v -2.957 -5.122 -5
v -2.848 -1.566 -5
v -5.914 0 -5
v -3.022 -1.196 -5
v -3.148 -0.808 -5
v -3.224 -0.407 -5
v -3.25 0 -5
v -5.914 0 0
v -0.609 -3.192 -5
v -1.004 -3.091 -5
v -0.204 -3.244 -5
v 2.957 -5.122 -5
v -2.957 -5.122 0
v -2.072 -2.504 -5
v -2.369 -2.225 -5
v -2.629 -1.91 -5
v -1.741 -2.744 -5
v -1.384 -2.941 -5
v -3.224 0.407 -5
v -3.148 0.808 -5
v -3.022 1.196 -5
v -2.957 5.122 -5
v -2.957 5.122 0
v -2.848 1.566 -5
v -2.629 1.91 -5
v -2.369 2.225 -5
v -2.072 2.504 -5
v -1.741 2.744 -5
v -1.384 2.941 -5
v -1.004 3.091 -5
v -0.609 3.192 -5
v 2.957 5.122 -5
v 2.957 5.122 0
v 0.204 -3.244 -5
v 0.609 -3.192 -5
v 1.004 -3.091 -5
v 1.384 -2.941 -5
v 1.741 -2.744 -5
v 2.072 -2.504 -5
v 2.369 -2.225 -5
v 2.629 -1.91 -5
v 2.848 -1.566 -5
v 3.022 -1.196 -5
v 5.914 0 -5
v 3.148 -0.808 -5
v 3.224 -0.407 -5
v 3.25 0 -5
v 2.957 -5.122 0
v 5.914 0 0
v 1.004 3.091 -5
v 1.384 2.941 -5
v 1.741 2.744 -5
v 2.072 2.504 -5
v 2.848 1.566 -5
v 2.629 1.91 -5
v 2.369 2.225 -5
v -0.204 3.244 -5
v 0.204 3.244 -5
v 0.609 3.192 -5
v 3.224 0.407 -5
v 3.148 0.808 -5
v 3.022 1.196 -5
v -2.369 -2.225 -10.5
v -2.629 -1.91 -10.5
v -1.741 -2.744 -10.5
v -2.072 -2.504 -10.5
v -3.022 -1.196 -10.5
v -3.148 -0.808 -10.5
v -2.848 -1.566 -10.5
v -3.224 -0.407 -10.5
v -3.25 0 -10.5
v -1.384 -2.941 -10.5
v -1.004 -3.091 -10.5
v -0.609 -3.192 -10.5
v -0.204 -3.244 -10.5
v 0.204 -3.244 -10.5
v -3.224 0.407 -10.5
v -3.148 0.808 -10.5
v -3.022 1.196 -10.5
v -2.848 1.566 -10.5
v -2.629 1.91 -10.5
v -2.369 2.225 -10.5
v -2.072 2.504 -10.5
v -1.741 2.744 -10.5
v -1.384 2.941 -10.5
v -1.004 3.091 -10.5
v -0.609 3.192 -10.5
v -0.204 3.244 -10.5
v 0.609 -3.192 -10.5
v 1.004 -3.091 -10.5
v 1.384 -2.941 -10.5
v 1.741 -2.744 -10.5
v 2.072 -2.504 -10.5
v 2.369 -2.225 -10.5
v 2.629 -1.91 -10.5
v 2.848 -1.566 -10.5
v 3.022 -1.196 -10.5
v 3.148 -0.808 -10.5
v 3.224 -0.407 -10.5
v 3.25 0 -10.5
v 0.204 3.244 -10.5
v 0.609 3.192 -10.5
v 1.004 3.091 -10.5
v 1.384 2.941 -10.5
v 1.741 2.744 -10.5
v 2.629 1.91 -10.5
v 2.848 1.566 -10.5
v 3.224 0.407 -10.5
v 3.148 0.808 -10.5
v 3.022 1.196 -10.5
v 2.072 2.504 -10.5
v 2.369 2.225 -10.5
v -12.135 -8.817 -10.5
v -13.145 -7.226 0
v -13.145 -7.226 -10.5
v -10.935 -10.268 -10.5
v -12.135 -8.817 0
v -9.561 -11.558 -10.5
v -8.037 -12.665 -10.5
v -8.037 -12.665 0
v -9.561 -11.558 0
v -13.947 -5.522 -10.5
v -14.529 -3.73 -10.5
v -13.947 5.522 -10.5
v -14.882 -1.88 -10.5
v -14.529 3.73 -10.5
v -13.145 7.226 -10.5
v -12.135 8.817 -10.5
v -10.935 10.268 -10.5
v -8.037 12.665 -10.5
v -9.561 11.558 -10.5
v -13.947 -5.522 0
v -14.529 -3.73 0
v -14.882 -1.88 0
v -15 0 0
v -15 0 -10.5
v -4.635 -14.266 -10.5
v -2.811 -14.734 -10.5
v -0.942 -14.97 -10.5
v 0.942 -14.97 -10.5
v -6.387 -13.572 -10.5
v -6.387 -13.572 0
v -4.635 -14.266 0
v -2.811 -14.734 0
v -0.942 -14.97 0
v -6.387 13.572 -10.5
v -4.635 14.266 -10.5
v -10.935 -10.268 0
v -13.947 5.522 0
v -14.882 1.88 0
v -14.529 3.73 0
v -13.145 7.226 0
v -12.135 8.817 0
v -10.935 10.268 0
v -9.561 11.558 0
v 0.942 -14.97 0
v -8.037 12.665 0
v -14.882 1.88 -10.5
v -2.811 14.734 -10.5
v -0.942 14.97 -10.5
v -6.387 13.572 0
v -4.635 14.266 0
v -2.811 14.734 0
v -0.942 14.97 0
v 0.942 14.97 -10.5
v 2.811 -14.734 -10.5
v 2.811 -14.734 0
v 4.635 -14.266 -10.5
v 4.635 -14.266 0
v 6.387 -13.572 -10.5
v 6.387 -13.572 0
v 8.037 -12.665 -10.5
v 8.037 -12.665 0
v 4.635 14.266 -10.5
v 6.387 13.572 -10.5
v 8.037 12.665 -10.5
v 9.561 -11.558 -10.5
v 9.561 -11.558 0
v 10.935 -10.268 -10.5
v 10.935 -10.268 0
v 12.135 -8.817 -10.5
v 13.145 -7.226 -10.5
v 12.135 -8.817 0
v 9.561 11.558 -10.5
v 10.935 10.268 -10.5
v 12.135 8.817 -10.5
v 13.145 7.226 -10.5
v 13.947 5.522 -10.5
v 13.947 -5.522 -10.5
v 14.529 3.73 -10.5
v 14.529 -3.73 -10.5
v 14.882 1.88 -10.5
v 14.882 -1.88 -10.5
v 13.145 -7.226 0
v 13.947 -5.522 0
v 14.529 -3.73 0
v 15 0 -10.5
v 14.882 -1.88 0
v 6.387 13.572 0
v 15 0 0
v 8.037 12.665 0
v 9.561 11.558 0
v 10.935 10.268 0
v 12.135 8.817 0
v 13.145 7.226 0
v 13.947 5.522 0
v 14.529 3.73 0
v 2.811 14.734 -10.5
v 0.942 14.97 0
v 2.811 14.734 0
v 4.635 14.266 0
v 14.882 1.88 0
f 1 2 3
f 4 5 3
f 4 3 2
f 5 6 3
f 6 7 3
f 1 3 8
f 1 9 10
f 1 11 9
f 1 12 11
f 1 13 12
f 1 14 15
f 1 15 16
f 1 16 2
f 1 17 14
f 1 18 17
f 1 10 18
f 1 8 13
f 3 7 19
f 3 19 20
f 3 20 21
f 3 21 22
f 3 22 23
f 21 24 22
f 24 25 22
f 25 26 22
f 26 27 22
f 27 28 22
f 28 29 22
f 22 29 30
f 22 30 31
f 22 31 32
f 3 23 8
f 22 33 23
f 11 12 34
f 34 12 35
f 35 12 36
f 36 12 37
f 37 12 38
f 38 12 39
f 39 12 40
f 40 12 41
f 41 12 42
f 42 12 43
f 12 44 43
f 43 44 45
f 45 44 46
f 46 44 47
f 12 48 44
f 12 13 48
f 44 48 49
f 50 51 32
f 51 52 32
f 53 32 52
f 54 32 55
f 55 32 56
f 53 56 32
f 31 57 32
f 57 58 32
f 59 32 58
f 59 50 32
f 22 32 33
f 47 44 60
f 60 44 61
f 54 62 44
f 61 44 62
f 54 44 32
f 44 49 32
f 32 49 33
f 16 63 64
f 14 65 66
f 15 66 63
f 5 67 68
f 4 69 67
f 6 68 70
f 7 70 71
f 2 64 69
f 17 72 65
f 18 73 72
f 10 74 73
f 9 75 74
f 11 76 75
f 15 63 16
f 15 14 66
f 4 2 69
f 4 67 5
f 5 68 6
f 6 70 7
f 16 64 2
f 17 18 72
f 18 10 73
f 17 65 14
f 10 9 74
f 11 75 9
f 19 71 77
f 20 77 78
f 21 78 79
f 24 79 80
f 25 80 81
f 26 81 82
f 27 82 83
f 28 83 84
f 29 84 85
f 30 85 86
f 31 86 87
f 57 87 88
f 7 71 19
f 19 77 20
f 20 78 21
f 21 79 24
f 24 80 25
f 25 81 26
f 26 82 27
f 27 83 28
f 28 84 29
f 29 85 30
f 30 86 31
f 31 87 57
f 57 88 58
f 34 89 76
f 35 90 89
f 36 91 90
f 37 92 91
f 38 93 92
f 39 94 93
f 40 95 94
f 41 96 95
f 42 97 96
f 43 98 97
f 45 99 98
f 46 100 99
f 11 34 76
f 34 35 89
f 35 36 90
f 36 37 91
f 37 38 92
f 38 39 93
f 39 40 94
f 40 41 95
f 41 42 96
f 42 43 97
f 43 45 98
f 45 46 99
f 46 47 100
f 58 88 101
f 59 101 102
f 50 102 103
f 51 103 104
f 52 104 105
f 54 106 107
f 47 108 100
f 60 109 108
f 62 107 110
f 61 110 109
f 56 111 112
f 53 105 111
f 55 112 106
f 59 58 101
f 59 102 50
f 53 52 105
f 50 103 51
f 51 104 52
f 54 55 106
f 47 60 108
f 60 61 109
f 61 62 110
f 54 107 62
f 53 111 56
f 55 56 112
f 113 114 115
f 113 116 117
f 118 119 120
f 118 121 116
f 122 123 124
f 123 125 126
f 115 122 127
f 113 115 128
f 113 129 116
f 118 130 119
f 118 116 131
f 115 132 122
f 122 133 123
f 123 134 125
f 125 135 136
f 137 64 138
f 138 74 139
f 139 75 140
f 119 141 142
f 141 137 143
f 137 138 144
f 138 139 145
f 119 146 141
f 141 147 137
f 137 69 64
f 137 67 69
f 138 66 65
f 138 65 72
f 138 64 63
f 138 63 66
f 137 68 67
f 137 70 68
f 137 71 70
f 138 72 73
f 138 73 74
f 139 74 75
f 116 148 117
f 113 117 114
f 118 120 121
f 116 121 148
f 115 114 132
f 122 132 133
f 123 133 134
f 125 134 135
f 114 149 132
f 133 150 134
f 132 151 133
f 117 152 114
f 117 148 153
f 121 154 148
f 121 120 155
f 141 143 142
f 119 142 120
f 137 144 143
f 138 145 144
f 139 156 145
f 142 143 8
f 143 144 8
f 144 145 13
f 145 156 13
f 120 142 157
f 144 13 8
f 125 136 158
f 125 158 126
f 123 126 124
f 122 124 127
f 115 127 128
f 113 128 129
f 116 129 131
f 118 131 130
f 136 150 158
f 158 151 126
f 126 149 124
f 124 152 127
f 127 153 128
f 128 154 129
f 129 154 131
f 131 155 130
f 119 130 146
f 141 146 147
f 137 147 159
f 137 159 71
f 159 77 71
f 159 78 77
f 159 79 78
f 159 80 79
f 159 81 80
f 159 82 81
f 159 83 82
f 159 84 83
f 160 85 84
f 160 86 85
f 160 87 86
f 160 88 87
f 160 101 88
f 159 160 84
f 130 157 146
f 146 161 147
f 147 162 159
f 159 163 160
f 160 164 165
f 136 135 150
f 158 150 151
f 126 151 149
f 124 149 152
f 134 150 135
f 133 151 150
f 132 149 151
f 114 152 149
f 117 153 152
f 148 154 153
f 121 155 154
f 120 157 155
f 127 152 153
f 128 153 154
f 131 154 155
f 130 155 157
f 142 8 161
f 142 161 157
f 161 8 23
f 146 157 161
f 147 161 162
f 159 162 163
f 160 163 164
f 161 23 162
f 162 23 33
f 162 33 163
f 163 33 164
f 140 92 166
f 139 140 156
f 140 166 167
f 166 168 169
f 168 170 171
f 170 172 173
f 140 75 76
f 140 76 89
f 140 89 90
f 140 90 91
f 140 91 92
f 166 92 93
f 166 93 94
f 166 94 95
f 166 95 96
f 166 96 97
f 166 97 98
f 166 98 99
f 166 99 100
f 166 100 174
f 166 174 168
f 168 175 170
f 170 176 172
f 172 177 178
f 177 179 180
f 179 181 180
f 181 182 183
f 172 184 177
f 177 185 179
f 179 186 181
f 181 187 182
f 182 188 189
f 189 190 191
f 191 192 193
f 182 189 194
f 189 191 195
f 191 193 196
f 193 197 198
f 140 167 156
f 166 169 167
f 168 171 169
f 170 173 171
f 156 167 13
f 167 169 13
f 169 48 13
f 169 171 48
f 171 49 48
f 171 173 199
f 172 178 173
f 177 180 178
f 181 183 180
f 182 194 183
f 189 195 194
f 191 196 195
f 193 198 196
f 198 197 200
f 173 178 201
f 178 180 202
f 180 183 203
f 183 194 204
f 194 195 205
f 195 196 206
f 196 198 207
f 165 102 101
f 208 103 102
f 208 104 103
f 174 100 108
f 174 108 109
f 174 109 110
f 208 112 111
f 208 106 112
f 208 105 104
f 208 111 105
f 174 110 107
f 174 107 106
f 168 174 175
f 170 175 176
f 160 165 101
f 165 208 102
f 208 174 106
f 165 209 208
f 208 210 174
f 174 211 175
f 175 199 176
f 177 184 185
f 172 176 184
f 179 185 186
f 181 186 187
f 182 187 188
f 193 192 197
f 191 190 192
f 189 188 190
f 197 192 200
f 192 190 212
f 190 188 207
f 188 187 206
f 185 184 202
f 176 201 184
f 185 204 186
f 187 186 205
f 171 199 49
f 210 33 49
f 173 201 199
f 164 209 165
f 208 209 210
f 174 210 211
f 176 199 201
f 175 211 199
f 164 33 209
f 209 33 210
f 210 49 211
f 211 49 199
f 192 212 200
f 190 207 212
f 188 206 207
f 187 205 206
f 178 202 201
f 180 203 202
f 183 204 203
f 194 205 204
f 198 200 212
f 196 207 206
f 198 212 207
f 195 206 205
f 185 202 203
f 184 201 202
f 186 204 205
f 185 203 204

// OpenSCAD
$fn = 50;


difference() {
	union() {
		translate(v = [0, 0, -10.5000000000]) {
			cylinder(h = 10.5000000000, r = 15.0000000000);
		}
	}
	union() {
		translate(v = [0, 0, 0]) {
			rotate(a = [0, 0, 0]) {
				difference() {
					union() {
						translate(v = [0, 0, -5]) {
							linear_extrude(height = 5) {
								polygon(points = [[5.9142500000, 0.0000000000], [2.9571250000, 5.1218907443], [-2.9571250000, 5.1218907443], [-5.9142500000, 0.0000000000], [-2.9571250000, -5.1218907443], [2.9571250000, -5.1218907443]]);
							}
						}
					}
					union();
				}
			}
		}
		#translate(v = [0, 0, -100.0000000000]) {
			cylinder(h = 200, r = 3.2500000000);
		}
	}
}
